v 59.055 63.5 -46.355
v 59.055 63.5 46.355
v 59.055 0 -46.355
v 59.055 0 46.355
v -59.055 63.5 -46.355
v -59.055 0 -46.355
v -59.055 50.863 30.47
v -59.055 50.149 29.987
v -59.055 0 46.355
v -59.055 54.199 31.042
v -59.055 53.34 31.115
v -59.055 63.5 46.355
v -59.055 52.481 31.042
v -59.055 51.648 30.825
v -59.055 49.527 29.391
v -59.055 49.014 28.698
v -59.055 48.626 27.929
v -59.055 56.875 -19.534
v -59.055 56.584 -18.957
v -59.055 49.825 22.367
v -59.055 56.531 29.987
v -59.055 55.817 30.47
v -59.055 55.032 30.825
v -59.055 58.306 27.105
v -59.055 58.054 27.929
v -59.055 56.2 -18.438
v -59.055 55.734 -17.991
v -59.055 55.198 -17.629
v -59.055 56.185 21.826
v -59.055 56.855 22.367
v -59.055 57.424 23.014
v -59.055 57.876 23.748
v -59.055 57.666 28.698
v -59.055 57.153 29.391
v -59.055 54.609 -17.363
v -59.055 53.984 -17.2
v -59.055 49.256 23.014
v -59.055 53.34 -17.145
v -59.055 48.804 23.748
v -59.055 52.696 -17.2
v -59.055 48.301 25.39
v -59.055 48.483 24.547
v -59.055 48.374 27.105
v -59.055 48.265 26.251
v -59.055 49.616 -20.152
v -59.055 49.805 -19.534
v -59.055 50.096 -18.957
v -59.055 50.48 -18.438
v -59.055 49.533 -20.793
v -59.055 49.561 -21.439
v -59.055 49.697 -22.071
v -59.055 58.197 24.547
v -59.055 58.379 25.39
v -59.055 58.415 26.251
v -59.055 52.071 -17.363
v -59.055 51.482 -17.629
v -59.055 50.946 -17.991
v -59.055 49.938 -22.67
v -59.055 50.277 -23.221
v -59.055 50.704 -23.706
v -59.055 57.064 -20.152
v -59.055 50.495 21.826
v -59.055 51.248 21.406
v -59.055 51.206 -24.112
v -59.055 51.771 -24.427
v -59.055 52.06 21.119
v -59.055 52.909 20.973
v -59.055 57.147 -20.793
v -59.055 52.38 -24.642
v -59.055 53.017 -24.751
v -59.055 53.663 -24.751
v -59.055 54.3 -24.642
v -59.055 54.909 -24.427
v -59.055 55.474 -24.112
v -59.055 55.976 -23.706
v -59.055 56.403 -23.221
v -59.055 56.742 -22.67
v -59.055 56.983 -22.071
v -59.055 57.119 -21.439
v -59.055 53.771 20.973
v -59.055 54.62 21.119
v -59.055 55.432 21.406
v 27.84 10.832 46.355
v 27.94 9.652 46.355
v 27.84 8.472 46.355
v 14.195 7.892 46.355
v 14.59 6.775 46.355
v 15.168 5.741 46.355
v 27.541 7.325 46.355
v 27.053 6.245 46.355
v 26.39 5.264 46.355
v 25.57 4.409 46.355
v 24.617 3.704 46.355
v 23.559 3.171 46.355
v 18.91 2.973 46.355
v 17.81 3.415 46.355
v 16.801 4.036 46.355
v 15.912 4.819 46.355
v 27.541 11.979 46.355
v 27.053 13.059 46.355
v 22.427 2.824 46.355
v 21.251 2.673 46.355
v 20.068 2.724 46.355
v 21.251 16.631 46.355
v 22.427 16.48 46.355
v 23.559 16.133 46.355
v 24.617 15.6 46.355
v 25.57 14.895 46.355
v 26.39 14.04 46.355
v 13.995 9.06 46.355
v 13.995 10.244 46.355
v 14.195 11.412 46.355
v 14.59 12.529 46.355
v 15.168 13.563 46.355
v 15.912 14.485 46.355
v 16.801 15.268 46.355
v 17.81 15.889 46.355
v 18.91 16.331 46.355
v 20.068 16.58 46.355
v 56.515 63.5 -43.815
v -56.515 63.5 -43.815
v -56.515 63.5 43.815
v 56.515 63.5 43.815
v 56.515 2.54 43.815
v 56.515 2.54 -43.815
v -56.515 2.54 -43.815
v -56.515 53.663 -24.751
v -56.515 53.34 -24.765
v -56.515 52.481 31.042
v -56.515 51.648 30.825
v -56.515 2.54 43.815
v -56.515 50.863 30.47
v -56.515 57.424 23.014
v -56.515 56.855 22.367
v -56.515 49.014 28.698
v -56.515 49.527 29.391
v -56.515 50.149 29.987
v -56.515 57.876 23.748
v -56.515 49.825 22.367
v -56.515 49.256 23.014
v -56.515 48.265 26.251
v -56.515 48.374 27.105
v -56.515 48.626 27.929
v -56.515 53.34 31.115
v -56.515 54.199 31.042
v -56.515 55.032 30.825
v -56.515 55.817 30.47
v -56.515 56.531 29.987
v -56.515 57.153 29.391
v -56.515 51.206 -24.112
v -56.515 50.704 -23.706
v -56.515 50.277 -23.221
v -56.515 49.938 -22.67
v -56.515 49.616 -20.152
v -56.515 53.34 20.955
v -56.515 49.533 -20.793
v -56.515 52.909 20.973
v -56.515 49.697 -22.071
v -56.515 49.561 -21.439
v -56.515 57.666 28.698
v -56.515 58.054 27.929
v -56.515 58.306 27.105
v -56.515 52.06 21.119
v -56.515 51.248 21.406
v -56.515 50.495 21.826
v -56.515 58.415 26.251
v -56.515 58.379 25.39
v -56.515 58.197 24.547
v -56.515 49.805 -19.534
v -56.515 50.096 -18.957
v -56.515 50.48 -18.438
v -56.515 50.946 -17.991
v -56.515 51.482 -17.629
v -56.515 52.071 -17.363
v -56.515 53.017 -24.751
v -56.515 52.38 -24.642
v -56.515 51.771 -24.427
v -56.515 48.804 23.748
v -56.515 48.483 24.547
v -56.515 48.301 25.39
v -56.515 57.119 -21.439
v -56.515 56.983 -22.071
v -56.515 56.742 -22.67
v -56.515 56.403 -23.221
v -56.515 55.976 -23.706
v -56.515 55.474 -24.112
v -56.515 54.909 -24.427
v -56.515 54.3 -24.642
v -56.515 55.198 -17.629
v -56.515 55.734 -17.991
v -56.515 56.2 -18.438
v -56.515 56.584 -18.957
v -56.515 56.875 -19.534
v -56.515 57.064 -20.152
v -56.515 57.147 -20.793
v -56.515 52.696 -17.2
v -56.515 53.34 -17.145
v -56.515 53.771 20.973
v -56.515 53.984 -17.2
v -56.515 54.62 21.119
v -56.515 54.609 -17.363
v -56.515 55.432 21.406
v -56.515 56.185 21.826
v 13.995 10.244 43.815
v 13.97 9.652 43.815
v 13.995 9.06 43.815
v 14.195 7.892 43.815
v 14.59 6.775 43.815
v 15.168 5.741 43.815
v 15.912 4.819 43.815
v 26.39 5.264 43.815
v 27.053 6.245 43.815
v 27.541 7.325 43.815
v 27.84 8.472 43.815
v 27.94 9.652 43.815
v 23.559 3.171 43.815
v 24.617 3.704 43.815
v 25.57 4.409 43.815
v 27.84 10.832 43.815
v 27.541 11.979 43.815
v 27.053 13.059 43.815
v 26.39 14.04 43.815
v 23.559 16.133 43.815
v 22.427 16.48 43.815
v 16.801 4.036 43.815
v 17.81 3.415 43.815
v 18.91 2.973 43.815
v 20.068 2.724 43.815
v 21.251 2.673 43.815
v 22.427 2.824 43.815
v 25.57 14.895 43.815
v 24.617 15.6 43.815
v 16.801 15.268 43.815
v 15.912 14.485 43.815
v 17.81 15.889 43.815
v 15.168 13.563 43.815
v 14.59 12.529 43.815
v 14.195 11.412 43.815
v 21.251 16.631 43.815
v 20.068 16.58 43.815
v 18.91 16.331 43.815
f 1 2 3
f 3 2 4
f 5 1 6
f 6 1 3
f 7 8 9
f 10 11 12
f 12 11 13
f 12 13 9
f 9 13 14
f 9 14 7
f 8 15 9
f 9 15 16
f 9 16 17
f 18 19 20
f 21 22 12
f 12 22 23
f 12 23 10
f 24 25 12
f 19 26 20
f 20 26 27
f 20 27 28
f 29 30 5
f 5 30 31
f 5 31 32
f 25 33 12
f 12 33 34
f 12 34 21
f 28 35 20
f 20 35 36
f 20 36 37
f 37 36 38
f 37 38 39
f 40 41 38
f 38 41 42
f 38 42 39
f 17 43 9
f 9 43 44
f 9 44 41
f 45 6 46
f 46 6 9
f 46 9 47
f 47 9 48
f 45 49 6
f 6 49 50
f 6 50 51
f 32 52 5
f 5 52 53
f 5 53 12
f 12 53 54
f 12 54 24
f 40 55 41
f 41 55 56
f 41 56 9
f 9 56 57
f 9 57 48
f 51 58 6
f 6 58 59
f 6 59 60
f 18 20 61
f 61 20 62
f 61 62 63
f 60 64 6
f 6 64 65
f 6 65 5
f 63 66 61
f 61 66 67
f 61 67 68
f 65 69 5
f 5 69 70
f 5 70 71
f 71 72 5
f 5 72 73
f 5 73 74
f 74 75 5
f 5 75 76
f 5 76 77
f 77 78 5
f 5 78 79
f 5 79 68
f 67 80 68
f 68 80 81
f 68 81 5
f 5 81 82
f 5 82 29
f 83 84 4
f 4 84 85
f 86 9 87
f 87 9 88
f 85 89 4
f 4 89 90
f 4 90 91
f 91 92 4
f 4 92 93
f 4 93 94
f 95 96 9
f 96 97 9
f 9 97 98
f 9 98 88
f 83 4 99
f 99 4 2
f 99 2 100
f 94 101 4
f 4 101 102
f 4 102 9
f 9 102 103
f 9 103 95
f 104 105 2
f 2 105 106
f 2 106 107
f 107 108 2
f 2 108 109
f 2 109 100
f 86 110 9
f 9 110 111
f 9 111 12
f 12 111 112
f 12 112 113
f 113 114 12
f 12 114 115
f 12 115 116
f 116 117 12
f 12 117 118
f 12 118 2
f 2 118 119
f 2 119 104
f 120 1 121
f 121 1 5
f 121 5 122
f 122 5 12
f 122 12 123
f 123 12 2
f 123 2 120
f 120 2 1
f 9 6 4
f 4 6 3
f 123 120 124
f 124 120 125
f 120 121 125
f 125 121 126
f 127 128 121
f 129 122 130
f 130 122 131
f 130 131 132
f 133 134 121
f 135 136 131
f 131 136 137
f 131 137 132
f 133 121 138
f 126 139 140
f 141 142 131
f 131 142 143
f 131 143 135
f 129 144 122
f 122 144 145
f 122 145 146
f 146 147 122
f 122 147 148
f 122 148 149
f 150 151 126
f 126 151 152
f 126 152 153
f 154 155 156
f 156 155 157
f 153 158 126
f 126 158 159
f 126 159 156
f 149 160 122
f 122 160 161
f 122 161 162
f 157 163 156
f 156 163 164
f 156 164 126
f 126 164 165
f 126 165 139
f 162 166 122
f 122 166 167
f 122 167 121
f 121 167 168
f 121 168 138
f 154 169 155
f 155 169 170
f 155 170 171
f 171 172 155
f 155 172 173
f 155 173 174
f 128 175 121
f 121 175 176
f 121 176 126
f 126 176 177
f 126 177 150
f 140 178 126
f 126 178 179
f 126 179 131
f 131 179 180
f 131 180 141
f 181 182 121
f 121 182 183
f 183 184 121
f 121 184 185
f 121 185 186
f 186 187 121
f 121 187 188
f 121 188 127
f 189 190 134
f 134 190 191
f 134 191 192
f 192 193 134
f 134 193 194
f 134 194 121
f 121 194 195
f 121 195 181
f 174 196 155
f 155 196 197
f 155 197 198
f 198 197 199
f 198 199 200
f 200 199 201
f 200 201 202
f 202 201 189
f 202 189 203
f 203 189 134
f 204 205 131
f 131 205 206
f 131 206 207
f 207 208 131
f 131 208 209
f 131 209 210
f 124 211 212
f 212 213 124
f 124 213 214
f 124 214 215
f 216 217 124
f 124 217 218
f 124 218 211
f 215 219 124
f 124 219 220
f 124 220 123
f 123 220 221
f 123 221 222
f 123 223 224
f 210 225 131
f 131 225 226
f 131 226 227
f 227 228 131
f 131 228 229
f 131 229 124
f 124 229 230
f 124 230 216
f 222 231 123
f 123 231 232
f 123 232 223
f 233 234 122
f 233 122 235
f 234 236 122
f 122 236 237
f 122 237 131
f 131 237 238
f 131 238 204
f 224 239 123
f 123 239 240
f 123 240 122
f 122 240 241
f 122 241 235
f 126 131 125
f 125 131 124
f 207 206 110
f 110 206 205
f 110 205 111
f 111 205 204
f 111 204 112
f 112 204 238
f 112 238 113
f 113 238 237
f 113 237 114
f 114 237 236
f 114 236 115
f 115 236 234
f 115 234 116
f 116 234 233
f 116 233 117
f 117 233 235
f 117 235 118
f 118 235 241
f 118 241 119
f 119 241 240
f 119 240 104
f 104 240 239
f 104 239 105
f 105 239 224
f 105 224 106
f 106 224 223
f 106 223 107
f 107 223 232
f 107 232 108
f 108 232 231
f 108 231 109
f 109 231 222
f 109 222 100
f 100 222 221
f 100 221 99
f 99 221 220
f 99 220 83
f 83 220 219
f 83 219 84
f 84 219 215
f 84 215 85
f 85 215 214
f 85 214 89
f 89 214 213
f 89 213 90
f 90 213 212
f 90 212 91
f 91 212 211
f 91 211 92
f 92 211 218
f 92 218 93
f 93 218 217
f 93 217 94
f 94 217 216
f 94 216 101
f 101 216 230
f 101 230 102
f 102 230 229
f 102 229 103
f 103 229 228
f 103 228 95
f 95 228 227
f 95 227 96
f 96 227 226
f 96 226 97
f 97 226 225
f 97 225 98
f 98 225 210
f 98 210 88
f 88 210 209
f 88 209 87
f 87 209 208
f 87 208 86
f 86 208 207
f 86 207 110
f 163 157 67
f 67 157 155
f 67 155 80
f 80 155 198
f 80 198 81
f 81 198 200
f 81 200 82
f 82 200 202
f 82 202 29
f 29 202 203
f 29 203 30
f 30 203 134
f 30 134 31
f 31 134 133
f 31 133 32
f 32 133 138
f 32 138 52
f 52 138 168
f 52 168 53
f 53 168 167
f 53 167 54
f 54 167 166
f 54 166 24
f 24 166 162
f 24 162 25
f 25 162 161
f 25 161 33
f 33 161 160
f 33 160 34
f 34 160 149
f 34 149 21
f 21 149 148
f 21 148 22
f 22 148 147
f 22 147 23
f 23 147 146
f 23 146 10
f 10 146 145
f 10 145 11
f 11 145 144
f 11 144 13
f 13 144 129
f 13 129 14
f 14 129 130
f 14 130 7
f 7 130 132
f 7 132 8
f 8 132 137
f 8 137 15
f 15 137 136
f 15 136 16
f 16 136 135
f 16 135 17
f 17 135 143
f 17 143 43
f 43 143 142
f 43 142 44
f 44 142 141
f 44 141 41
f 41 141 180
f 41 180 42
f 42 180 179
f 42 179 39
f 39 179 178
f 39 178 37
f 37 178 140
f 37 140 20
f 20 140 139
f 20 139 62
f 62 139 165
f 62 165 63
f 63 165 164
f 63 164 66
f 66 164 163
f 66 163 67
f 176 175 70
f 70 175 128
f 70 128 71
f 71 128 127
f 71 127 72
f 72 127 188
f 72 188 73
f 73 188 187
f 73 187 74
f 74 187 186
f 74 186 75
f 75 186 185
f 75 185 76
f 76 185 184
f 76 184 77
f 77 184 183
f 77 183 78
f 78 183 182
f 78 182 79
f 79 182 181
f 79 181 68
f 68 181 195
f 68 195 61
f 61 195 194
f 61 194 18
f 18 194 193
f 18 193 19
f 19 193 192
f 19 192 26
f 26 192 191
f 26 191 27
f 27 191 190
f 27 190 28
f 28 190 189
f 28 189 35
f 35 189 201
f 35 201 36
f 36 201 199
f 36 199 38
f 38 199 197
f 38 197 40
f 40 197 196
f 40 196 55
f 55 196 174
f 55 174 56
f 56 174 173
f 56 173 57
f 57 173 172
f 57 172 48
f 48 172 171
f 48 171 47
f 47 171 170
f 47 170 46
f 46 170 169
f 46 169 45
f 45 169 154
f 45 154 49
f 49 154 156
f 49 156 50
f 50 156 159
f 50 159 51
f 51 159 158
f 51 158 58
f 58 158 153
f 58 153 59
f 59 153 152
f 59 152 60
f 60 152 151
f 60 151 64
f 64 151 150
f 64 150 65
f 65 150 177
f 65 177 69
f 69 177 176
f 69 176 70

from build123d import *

# Parameters (mm, degrees)
SKETCH2_W           = 118.11
SKETCH2_H           = 92.71
BOSS_EXTRUDE2_DEPTH = 63.5
SHELL1_T            = -2.54
SKETCH3_R           = 6.985
CUT_EXTRUDE1_DEPTH  = 90.17
CUT_EXTRUDE2_REACH  = 120.11
SKETCH4_R           = 5.08
CUT_EXTRUDE3_REACH  = 120.11
SKETCH5_R           = 3.81


with BuildPart() as part:
    # Sketch2 → Boss-Extrude2 (new body)
    with BuildSketch(Plane(origin=(0, 0, 0), x_dir=(1, 0, 0), z_dir=(0, 1, 0))):
        Rectangle(SKETCH2_W, SKETCH2_H)
    extrude(amount=BOSS_EXTRUDE2_DEPTH)

    # Shell1
    shell1_openings = [part.faces().sort_by_distance(p)[0] for p in [
        (0, 63.5, 0),
    ]]
    offset(amount=SHELL1_T, openings=shell1_openings, kind=Kind.INTERSECTION)

    # Sketch3 → Cut-Extrude1 (cut)
    with BuildSketch(Plane.XY.offset(46.355)):
        with Locations((20.955, 9.652)):
            Circle(SKETCH3_R)
    extrude(amount=-CUT_EXTRUDE1_DEPTH, mode=Mode.SUBTRACT)

    # Sketch4 → Cut-Extrude2 (cut, up to next)
    with BuildSketch(Plane.ZY.offset(59.055), mode=Mode.PRIVATE) as cut_extrude2_sk1:
        with Locations((26.035, 53.34)):
            Circle(SKETCH4_R)
    cut_extrude2_tool1 = extrude(cut_extrude2_sk1.sketch, amount=-CUT_EXTRUDE2_REACH, mode=Mode.PRIVATE) & part.part
    add(cut_extrude2_tool1.solids().sort_by_distance((-59.055, 53.34, 26.035))[0], mode=Mode.SUBTRACT)

    # Sketch5 → Cut-Extrude3 (cut, up to next)
    with BuildSketch(Plane.ZY.offset(59.055), mode=Mode.PRIVATE) as cut_extrude3_sk1:
        with Locations((-20.955, 53.34)):
            Circle(SKETCH5_R)
    cut_extrude3_tool1 = extrude(cut_extrude3_sk1.sketch, amount=-CUT_EXTRUDE3_REACH, mode=Mode.PRIVATE) & part.part
    add(cut_extrude3_tool1.solids().sort_by_distance((-59.055, 53.34, -20.955))[0], mode=Mode.SUBTRACT)


solid = part.part
